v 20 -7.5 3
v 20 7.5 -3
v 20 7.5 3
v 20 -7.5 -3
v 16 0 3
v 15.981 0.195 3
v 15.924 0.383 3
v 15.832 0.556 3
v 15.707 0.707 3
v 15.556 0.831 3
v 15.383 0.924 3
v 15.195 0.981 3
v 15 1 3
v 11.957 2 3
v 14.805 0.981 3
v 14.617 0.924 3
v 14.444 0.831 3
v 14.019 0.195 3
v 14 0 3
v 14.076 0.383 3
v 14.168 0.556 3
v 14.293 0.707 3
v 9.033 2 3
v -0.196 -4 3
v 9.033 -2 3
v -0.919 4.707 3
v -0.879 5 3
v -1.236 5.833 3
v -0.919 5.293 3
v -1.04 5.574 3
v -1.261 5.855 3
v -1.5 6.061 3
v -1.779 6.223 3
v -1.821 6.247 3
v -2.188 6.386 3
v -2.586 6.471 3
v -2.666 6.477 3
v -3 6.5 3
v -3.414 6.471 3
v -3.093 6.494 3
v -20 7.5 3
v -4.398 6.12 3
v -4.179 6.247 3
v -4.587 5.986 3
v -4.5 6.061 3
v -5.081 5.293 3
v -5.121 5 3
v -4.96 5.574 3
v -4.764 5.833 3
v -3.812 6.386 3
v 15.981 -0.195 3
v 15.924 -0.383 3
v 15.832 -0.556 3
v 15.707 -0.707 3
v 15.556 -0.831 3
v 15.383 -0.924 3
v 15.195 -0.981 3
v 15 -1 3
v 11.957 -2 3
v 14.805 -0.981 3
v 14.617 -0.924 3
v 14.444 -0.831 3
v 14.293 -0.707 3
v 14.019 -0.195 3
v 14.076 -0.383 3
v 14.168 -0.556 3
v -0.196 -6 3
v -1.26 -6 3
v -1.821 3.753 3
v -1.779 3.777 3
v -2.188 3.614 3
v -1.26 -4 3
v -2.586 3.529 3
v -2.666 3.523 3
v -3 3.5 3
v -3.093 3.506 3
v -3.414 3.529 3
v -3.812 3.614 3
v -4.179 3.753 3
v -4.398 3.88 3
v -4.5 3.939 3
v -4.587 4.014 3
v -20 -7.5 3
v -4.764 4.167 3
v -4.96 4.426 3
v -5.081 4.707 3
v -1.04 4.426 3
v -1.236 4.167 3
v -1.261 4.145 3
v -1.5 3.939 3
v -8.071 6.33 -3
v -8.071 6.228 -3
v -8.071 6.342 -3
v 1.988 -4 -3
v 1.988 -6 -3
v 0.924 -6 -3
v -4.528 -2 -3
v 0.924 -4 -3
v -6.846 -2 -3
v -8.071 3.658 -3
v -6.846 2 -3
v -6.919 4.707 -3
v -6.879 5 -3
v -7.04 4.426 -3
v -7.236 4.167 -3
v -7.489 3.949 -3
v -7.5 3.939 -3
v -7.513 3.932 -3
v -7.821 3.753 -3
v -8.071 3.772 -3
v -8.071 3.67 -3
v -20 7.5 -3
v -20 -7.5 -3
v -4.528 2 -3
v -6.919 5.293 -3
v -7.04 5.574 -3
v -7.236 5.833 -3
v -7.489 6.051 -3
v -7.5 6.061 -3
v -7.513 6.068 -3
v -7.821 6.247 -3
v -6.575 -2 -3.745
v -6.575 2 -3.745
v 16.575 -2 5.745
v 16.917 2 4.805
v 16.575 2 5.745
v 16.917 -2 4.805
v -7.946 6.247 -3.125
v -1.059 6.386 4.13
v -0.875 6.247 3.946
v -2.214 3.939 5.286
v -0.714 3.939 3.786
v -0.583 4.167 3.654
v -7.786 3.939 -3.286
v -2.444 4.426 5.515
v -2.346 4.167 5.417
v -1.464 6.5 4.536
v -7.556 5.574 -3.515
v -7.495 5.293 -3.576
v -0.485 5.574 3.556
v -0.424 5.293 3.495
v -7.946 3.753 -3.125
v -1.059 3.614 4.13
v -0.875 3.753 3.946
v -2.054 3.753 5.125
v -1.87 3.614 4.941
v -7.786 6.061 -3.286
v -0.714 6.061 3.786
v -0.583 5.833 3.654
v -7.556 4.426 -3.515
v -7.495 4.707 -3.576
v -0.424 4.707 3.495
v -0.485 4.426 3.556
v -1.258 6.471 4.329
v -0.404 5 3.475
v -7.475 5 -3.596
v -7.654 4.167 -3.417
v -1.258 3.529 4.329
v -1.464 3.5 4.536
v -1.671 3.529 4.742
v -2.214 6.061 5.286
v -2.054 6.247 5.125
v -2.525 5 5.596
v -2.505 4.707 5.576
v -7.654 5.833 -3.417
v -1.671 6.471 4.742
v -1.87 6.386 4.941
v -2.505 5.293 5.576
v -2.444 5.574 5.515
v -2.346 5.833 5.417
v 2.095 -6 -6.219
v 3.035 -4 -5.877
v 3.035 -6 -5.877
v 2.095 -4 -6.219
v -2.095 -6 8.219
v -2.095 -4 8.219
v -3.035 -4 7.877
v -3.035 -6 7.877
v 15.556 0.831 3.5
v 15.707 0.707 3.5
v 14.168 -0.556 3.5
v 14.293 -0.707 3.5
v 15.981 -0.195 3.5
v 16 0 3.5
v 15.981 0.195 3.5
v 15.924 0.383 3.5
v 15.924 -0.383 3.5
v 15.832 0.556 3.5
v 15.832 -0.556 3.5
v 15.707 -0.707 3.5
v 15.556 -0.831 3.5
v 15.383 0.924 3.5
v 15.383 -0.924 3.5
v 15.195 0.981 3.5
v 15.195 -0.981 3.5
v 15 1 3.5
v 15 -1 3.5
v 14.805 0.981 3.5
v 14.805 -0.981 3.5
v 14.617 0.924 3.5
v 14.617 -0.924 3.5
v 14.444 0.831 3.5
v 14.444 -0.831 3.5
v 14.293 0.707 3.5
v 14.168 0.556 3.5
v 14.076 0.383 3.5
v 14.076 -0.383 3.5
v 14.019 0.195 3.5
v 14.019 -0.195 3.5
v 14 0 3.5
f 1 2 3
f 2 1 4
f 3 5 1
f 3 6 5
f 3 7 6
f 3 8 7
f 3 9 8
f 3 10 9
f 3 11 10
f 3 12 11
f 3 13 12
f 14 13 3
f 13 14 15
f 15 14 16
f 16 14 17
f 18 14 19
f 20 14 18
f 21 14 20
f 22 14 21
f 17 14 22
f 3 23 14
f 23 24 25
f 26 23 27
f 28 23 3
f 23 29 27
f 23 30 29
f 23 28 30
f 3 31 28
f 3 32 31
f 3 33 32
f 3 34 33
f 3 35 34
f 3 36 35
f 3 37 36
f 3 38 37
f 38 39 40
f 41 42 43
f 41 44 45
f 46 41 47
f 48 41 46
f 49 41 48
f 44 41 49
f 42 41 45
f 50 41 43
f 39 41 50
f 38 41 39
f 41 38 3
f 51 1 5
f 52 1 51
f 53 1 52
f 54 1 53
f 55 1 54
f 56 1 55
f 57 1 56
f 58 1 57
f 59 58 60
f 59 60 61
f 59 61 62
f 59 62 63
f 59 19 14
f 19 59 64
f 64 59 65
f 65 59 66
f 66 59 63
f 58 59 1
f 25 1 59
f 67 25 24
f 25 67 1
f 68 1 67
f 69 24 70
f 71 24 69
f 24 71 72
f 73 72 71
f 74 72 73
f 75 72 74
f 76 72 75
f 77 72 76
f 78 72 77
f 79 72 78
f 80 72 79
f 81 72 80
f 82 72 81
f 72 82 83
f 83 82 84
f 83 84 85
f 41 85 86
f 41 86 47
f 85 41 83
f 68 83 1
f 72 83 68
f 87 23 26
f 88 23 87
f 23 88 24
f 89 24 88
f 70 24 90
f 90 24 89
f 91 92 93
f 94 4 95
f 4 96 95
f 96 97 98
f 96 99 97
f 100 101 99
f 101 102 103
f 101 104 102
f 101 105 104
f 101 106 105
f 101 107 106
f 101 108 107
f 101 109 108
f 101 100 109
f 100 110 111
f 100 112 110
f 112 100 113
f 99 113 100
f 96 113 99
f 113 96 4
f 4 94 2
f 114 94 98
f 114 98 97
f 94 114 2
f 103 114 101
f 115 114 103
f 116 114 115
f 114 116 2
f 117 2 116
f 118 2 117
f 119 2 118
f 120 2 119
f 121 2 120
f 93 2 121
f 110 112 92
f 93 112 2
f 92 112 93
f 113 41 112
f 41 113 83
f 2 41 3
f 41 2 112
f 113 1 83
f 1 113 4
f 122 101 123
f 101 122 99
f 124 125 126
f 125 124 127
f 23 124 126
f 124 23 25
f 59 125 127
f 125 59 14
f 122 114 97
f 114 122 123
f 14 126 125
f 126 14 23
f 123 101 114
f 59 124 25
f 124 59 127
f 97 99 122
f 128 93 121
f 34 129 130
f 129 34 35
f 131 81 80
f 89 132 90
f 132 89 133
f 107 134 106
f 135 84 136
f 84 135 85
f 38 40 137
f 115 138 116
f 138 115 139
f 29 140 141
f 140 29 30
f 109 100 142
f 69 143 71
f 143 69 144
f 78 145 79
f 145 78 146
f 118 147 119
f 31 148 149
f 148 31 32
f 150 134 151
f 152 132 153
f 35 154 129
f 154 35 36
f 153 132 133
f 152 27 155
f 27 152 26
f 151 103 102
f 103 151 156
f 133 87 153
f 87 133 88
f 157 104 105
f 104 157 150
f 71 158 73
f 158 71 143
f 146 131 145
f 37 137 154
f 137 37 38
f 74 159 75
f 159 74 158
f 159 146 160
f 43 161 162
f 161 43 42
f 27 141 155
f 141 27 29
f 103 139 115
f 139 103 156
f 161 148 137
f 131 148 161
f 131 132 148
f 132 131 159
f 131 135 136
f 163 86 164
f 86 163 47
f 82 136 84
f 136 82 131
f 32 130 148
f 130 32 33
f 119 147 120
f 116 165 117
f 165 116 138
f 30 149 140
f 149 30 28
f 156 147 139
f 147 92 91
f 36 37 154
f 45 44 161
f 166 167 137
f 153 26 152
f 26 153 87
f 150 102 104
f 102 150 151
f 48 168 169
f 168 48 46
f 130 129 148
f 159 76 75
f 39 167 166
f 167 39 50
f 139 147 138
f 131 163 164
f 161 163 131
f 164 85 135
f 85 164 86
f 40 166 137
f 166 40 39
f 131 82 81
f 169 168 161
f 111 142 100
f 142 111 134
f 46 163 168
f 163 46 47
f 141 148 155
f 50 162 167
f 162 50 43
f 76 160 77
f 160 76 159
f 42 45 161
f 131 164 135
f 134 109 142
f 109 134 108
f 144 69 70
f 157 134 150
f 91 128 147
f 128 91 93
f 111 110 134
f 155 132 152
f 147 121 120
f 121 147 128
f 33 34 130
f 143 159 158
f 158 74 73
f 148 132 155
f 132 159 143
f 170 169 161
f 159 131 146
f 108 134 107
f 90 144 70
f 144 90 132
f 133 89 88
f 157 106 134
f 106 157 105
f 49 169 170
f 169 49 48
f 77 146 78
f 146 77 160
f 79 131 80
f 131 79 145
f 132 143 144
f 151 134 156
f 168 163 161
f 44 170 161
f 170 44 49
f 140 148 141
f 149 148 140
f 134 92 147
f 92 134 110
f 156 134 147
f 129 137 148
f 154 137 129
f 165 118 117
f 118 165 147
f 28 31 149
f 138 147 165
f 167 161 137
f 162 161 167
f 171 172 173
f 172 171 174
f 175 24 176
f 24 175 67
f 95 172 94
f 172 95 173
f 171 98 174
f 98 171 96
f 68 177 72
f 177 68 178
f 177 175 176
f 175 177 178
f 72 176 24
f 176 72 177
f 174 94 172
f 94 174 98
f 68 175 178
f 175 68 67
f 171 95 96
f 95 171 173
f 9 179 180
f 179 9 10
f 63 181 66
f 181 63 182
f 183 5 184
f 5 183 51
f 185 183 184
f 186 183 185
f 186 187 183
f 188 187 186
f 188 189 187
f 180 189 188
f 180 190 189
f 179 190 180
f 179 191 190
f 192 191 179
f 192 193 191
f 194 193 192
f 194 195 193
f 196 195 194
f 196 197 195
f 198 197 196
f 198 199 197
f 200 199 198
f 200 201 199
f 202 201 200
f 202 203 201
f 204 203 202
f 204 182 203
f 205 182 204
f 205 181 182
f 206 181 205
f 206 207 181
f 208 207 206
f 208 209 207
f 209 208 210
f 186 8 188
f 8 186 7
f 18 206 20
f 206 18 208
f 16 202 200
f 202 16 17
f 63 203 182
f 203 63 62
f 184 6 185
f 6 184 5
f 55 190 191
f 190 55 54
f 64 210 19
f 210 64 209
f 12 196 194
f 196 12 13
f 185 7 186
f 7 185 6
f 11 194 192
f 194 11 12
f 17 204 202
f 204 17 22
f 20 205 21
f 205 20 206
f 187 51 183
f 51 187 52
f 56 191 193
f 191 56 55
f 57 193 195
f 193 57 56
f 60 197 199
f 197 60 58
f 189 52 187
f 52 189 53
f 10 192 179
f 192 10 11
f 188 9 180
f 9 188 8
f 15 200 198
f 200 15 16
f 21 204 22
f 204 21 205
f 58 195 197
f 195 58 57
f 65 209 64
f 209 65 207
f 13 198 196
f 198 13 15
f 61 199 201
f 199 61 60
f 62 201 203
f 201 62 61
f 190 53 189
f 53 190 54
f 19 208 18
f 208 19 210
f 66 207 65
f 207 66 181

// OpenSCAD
$fn = 32;

// Main Body
color("red")
cube([40, 15, 6], center=true);

// Handle hinge area
translate([-15, 0, 0])
color("silver")
cylinder(h=6, r=3, center=true);

// Tool 1: Blade (peeking out)
translate([5, 0, 1])
rotate([0, -20, 0])
color("silver")
cube([25, 4, 1], center=true);

// Tool 2: Screwdriver (peeking out)
translate([-5, 5, 1])
rotate([0, 45, 0])
color("silver")
cylinder(h=10, r=1.5, center=true);

// Tool 3: File (peeking out)
translate([0, -5, 1])
rotate([0, 70, 0])
color("silver")
cube([15, 2, 1], center=true);

// Decorative rivet
translate([15, 0, 3])
color("gold")
cylinder(h=1, r=1, center=true);
